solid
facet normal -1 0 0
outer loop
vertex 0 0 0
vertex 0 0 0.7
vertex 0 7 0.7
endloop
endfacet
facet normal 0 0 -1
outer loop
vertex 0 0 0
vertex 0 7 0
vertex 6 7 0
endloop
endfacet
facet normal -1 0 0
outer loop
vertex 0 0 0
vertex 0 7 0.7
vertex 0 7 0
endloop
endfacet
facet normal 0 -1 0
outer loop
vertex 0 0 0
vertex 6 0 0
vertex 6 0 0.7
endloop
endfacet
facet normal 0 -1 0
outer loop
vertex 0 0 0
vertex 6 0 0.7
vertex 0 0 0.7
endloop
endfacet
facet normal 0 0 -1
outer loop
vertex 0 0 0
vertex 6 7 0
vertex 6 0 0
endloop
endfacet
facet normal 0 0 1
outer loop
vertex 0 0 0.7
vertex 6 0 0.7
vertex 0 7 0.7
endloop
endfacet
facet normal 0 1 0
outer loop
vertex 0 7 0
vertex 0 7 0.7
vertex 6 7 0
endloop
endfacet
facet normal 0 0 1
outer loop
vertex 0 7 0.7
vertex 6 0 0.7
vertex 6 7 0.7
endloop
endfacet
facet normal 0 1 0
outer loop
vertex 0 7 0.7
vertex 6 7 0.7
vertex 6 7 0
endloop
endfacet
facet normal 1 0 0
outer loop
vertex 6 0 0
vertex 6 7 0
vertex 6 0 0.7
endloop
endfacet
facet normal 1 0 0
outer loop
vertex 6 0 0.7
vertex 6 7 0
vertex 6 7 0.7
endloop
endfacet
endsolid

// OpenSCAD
/* Warning, this is a very basic generator with a lot of approximation 
input data : [WQFN, SLC, 6x7x0.7mm, 39, , B, C04-25647B]
generated by com.zoubworld.electronics.cad.model3d.Basic
Date : Sun Feb 15 10:50:49 CET 2026
*/

//body
color("black")
translate([0,0,0])
cube([6.0,7.0,0.7], center=false);
